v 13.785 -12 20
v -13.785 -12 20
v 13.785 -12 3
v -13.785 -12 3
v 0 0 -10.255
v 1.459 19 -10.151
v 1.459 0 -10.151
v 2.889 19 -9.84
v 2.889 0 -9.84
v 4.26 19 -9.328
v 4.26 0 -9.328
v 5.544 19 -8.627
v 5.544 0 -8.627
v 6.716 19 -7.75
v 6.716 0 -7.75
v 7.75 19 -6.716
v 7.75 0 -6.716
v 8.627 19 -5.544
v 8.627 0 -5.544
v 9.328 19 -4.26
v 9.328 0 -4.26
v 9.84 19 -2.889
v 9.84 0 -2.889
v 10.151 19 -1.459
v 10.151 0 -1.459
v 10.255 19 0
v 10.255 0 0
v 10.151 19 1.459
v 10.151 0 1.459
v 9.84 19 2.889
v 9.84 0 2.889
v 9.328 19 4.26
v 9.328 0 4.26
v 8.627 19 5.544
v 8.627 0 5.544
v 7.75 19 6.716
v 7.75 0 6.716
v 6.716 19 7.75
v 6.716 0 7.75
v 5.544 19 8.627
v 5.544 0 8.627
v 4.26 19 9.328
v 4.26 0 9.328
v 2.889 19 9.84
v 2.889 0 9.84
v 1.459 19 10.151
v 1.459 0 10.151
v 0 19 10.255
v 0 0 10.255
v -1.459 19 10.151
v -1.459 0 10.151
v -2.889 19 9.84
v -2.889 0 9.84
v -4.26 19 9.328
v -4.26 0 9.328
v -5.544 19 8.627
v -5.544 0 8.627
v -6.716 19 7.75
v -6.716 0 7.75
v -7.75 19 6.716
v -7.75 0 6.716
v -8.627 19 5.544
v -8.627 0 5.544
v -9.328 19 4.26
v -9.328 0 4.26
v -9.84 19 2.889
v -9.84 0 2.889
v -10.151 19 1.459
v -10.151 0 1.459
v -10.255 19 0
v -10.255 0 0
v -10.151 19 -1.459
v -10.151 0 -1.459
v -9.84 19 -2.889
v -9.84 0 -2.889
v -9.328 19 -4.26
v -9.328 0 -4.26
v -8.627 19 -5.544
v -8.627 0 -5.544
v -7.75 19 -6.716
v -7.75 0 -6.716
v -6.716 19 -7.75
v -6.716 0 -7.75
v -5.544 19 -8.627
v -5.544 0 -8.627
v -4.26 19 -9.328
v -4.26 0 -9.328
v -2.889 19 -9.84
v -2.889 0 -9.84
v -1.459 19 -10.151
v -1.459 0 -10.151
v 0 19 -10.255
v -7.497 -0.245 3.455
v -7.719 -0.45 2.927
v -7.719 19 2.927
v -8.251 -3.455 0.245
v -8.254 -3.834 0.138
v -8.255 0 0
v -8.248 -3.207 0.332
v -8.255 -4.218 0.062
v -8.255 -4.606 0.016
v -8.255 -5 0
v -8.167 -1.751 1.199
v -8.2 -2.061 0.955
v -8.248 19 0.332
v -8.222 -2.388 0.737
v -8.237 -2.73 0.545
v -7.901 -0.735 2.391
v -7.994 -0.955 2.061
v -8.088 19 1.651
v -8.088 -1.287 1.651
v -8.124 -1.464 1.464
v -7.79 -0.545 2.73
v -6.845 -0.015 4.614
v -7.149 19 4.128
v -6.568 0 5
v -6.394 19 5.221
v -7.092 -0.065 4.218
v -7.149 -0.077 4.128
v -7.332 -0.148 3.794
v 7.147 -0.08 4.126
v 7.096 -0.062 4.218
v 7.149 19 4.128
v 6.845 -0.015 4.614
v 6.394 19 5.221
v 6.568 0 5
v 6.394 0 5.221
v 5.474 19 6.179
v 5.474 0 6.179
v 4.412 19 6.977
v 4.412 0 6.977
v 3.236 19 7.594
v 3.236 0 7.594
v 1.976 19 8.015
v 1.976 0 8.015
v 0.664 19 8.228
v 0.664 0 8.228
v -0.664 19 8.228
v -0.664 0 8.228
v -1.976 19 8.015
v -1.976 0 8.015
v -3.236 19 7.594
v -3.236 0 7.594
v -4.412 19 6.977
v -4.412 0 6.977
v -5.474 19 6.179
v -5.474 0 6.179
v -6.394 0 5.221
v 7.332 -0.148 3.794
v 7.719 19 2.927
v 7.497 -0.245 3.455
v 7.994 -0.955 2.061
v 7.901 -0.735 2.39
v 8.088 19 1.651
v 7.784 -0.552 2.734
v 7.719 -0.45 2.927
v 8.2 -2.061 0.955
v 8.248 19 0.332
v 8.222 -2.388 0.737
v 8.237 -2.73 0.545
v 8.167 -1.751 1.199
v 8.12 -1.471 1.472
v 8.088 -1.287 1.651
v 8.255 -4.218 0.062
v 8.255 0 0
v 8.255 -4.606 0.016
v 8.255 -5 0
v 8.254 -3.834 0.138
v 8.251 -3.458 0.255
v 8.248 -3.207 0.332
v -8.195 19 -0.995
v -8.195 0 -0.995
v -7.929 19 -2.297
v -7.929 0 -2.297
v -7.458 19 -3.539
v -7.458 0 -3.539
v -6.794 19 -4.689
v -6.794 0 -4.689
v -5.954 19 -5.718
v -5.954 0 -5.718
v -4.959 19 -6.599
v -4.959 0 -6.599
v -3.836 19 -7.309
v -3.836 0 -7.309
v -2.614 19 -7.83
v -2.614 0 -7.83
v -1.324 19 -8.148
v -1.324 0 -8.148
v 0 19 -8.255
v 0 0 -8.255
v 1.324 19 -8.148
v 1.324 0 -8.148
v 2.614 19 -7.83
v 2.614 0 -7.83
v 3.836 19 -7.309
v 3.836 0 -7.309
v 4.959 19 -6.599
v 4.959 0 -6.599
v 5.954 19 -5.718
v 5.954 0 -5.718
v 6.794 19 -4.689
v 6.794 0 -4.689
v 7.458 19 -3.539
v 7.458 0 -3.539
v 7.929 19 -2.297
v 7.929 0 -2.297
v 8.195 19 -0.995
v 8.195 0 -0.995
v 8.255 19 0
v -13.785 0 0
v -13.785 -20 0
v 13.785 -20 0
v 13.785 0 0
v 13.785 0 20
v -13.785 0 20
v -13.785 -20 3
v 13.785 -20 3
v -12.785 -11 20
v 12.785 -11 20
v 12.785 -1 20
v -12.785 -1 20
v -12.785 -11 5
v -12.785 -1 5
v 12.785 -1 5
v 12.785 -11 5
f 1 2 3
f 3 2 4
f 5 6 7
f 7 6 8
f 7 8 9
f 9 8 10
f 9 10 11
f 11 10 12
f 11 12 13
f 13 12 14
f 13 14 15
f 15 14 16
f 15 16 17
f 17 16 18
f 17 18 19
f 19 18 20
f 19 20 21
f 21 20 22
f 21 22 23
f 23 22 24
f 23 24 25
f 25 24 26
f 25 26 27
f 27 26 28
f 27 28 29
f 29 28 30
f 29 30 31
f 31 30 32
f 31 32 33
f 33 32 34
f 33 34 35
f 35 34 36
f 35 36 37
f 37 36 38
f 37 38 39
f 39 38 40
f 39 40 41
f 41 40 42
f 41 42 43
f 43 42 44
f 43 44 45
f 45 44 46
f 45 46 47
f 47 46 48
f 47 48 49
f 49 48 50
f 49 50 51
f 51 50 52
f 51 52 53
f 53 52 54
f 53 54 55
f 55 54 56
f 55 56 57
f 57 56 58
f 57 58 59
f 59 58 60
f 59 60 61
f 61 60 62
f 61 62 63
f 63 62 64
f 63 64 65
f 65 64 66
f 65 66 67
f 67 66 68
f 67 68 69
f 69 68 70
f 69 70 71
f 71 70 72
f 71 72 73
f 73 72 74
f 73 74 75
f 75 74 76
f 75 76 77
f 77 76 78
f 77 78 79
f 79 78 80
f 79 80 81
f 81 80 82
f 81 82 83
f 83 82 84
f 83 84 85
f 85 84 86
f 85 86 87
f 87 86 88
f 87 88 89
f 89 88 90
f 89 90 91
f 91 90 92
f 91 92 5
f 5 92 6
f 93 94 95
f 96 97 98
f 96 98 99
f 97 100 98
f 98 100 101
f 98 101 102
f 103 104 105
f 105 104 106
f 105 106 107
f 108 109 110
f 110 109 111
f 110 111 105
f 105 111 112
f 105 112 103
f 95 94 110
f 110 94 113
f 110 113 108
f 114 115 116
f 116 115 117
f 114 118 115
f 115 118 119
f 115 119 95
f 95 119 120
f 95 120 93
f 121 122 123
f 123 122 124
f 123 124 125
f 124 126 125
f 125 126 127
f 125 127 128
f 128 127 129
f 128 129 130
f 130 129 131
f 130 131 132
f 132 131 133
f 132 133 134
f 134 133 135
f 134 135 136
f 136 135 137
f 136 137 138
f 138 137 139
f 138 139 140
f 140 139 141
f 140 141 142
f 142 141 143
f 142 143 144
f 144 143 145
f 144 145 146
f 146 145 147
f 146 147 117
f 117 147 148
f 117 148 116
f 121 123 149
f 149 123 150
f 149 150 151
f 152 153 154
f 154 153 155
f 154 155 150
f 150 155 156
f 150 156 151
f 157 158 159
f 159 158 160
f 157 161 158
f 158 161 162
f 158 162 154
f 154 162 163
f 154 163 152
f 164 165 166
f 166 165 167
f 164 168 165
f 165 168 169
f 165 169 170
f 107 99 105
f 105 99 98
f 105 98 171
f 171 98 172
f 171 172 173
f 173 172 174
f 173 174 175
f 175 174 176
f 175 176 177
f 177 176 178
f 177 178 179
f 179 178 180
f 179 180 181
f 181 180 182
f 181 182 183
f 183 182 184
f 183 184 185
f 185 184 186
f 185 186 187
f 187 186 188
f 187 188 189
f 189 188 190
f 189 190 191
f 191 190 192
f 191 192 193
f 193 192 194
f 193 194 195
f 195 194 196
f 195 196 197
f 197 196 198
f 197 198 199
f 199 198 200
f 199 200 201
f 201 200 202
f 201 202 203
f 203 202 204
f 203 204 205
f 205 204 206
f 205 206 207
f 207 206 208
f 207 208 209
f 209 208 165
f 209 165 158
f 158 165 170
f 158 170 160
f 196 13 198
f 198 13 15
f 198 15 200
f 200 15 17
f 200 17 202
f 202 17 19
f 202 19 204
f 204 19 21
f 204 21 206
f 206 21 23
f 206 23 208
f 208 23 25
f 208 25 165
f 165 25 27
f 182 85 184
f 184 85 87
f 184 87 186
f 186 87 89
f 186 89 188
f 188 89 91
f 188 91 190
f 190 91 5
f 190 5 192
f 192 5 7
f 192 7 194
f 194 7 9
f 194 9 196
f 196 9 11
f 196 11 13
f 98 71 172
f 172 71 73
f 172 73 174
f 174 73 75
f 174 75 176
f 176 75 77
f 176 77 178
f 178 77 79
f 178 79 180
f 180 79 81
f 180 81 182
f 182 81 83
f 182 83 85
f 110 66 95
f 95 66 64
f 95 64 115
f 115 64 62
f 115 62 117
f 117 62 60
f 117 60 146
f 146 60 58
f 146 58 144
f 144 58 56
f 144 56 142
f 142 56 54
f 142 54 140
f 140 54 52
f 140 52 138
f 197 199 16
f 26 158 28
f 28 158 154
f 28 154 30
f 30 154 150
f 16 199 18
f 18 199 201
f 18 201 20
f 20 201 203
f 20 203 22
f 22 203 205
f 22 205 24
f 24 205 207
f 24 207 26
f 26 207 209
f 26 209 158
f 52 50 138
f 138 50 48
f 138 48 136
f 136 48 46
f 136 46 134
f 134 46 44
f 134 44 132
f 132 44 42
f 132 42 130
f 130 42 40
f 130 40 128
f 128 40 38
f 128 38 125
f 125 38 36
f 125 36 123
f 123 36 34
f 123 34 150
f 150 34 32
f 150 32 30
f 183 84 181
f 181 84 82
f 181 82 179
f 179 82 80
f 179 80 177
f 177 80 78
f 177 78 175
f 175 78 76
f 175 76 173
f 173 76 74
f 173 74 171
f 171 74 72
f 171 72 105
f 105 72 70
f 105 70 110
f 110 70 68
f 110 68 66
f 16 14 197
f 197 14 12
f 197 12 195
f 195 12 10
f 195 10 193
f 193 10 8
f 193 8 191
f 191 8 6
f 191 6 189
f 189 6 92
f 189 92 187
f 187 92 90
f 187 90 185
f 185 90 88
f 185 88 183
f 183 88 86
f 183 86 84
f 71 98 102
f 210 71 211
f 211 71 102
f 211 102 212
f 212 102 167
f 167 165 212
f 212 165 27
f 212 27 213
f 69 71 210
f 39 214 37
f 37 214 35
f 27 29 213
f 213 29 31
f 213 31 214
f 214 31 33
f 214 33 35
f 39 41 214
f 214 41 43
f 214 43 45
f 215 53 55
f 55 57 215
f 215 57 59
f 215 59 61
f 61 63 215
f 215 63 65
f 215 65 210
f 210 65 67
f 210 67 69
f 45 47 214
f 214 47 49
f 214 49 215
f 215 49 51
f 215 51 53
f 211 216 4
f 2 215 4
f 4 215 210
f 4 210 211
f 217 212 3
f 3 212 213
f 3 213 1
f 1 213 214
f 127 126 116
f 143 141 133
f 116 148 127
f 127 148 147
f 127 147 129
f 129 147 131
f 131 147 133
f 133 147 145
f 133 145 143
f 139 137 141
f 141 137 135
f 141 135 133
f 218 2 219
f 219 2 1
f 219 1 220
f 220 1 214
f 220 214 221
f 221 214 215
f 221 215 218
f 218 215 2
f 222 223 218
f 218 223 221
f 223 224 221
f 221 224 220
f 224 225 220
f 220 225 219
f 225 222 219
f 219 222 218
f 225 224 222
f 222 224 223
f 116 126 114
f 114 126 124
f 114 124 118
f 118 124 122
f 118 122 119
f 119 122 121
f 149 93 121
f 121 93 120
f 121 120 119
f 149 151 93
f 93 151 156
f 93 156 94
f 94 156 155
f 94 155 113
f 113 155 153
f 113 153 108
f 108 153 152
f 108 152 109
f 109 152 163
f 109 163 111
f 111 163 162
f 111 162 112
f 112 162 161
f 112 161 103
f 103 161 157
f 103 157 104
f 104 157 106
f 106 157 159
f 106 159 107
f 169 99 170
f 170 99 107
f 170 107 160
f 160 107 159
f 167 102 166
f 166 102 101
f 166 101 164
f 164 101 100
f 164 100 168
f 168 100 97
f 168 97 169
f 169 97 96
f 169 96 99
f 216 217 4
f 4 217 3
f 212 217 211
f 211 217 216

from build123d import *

# Parameters (mm, degrees)
SKETCH_2_R          = 10.255
SKETCH_2_R_2        = 8.255
F_19MM_DEPTH        = 19
EXTRUDE_START       = -11
EXTRUDE_3_DEPTH     = 11
SKETCH_646_W        = 27.57
SKETCH_646_H        = 12
EXTRUDE_698_DEPTH   = 20
SKETCH_6_W          = 25.57
SKETCH_6_H          = 10
CUT_EXTRUDE_1_DEPTH = 15
FILLET_1_R          = 5
SKETCH_10_W         = 27.57
SKETCH_10_H         = 3
EXTRUDE_3_2_DEPTH   = 8


with BuildPart() as part:
    # 草圖2 → 19mm (new body)
    with BuildSketch(Plane(origin=(0, 0, 0), x_dir=(1, 0, 0), z_dir=(0, 1, 0))):
        Circle(SKETCH_2_R)
        Circle(SKETCH_2_R_2, mode=Mode.SUBTRACT)
    extrude(amount=F_19MM_DEPTH)

    # 草圖13 → Extrude 3 (add)
    with BuildSketch(Plane(origin=(0, 0, 0), x_dir=(1, 0, 0), z_dir=(0, 1, 0)).offset(EXTRUDE_START)):
        with BuildLine():
            ThreePointArc((-8.255, 0), (0, -8.255), (8.255, 0))
            Line((8.255, 0), (10.255, 0))
            ThreePointArc((10.255, 0), (0, -10.255), (-10.255, 0))
            Line((-10.255, 0), (-8.255, 0))
        make_face()
    extrude(amount=EXTRUDE_3_DEPTH)

    # Sketch 646 → Extrude 698 (add)
    with BuildSketch(Plane.XY):
        with Locations((0, -6)):
            Rectangle(SKETCH_646_W, SKETCH_646_H)
    extrude(amount=EXTRUDE_698_DEPTH)

    # 草圖6 → 除料-伸長1 (cut)
    with BuildSketch(Plane.XY.offset(20)):
        with Locations((0, -6)):
            Rectangle(SKETCH_6_W, SKETCH_6_H)
    extrude(amount=-CUT_EXTRUDE_1_DEPTH, mode=Mode.SUBTRACT)

    # 圓角1
    # the kernel refuses this fillet: 5 mm, written as the material it takes off along each edge
    with BuildSketch(Plane(origin=(-20.755, 0, 0), x_dir=(0, -1, 0), z_dir=(1, 0, 0))) as fillet_1_piece_1_section:
        with BuildLine():
            CenterArc((FILLET_1_R, -FILLET_1_R), FILLET_1_R, 90, 90)
            Line((0, -FILLET_1_R), (0, 0))
            Line((0, 0), (FILLET_1_R, 0))
        make_face()
    fillet_1_piece_1 = extrude(amount=41.51, mode=Mode.PRIVATE)
    fillet_1_piece_1 = fillet_1_piece_1 & Plane(origin=(0, -1.128045065, 0), x_dir=(1, 0, 0), z_dir=(0, -1, 0)) * Cylinder(8.255, 104, mode=Mode.PRIVATE)
    add(fillet_1_piece_1, mode=Mode.SUBTRACT)

    # 草圖10 → Extrude 3 2 (add)
    with BuildSketch(Plane.XZ.offset(12)):
        with Locations((0, 1.5)):
            Rectangle(SKETCH_10_W, SKETCH_10_H)
    extrude(amount=EXTRUDE_3_2_DEPTH)


solid = part.part
